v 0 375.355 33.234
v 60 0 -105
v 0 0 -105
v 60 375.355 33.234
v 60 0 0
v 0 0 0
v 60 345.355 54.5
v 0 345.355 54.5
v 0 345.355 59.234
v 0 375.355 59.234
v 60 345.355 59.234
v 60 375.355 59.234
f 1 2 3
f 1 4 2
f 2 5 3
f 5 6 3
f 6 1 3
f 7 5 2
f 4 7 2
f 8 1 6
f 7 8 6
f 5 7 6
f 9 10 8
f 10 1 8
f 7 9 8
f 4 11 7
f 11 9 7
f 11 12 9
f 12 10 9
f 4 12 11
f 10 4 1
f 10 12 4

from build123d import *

# Parameters (mm, degrees)
BOSS_EXTRUDE1_DEPTH = 60
SKETCH2_W           = 26
SKETCH2_H           = 30
BOSS_EXTRUDE2_DEPTH = 60


with BuildPart() as part:
    # Sketch1 → Boss-Extrude1 (new body)
    with BuildSketch(Plane(origin=(0, 0, 0), x_dir=(0, 0, -1), z_dir=(1, 0, 0))):
        Polygon((0, 0), (-59.234177215, 375.354915047), (-33.234177215, 375.354915047), (105, 0), align=None)
    extrude(amount=BOSS_EXTRUDE1_DEPTH)

    # Sketch2 → Boss-Extrude2 (add)
    with BuildSketch(Plane.ZY):
        with Locations((46.234177215, 360.354915047)):
            Rectangle(SKETCH2_W, SKETCH2_H)
    extrude(amount=-BOSS_EXTRUDE2_DEPTH)


solid = part.part
